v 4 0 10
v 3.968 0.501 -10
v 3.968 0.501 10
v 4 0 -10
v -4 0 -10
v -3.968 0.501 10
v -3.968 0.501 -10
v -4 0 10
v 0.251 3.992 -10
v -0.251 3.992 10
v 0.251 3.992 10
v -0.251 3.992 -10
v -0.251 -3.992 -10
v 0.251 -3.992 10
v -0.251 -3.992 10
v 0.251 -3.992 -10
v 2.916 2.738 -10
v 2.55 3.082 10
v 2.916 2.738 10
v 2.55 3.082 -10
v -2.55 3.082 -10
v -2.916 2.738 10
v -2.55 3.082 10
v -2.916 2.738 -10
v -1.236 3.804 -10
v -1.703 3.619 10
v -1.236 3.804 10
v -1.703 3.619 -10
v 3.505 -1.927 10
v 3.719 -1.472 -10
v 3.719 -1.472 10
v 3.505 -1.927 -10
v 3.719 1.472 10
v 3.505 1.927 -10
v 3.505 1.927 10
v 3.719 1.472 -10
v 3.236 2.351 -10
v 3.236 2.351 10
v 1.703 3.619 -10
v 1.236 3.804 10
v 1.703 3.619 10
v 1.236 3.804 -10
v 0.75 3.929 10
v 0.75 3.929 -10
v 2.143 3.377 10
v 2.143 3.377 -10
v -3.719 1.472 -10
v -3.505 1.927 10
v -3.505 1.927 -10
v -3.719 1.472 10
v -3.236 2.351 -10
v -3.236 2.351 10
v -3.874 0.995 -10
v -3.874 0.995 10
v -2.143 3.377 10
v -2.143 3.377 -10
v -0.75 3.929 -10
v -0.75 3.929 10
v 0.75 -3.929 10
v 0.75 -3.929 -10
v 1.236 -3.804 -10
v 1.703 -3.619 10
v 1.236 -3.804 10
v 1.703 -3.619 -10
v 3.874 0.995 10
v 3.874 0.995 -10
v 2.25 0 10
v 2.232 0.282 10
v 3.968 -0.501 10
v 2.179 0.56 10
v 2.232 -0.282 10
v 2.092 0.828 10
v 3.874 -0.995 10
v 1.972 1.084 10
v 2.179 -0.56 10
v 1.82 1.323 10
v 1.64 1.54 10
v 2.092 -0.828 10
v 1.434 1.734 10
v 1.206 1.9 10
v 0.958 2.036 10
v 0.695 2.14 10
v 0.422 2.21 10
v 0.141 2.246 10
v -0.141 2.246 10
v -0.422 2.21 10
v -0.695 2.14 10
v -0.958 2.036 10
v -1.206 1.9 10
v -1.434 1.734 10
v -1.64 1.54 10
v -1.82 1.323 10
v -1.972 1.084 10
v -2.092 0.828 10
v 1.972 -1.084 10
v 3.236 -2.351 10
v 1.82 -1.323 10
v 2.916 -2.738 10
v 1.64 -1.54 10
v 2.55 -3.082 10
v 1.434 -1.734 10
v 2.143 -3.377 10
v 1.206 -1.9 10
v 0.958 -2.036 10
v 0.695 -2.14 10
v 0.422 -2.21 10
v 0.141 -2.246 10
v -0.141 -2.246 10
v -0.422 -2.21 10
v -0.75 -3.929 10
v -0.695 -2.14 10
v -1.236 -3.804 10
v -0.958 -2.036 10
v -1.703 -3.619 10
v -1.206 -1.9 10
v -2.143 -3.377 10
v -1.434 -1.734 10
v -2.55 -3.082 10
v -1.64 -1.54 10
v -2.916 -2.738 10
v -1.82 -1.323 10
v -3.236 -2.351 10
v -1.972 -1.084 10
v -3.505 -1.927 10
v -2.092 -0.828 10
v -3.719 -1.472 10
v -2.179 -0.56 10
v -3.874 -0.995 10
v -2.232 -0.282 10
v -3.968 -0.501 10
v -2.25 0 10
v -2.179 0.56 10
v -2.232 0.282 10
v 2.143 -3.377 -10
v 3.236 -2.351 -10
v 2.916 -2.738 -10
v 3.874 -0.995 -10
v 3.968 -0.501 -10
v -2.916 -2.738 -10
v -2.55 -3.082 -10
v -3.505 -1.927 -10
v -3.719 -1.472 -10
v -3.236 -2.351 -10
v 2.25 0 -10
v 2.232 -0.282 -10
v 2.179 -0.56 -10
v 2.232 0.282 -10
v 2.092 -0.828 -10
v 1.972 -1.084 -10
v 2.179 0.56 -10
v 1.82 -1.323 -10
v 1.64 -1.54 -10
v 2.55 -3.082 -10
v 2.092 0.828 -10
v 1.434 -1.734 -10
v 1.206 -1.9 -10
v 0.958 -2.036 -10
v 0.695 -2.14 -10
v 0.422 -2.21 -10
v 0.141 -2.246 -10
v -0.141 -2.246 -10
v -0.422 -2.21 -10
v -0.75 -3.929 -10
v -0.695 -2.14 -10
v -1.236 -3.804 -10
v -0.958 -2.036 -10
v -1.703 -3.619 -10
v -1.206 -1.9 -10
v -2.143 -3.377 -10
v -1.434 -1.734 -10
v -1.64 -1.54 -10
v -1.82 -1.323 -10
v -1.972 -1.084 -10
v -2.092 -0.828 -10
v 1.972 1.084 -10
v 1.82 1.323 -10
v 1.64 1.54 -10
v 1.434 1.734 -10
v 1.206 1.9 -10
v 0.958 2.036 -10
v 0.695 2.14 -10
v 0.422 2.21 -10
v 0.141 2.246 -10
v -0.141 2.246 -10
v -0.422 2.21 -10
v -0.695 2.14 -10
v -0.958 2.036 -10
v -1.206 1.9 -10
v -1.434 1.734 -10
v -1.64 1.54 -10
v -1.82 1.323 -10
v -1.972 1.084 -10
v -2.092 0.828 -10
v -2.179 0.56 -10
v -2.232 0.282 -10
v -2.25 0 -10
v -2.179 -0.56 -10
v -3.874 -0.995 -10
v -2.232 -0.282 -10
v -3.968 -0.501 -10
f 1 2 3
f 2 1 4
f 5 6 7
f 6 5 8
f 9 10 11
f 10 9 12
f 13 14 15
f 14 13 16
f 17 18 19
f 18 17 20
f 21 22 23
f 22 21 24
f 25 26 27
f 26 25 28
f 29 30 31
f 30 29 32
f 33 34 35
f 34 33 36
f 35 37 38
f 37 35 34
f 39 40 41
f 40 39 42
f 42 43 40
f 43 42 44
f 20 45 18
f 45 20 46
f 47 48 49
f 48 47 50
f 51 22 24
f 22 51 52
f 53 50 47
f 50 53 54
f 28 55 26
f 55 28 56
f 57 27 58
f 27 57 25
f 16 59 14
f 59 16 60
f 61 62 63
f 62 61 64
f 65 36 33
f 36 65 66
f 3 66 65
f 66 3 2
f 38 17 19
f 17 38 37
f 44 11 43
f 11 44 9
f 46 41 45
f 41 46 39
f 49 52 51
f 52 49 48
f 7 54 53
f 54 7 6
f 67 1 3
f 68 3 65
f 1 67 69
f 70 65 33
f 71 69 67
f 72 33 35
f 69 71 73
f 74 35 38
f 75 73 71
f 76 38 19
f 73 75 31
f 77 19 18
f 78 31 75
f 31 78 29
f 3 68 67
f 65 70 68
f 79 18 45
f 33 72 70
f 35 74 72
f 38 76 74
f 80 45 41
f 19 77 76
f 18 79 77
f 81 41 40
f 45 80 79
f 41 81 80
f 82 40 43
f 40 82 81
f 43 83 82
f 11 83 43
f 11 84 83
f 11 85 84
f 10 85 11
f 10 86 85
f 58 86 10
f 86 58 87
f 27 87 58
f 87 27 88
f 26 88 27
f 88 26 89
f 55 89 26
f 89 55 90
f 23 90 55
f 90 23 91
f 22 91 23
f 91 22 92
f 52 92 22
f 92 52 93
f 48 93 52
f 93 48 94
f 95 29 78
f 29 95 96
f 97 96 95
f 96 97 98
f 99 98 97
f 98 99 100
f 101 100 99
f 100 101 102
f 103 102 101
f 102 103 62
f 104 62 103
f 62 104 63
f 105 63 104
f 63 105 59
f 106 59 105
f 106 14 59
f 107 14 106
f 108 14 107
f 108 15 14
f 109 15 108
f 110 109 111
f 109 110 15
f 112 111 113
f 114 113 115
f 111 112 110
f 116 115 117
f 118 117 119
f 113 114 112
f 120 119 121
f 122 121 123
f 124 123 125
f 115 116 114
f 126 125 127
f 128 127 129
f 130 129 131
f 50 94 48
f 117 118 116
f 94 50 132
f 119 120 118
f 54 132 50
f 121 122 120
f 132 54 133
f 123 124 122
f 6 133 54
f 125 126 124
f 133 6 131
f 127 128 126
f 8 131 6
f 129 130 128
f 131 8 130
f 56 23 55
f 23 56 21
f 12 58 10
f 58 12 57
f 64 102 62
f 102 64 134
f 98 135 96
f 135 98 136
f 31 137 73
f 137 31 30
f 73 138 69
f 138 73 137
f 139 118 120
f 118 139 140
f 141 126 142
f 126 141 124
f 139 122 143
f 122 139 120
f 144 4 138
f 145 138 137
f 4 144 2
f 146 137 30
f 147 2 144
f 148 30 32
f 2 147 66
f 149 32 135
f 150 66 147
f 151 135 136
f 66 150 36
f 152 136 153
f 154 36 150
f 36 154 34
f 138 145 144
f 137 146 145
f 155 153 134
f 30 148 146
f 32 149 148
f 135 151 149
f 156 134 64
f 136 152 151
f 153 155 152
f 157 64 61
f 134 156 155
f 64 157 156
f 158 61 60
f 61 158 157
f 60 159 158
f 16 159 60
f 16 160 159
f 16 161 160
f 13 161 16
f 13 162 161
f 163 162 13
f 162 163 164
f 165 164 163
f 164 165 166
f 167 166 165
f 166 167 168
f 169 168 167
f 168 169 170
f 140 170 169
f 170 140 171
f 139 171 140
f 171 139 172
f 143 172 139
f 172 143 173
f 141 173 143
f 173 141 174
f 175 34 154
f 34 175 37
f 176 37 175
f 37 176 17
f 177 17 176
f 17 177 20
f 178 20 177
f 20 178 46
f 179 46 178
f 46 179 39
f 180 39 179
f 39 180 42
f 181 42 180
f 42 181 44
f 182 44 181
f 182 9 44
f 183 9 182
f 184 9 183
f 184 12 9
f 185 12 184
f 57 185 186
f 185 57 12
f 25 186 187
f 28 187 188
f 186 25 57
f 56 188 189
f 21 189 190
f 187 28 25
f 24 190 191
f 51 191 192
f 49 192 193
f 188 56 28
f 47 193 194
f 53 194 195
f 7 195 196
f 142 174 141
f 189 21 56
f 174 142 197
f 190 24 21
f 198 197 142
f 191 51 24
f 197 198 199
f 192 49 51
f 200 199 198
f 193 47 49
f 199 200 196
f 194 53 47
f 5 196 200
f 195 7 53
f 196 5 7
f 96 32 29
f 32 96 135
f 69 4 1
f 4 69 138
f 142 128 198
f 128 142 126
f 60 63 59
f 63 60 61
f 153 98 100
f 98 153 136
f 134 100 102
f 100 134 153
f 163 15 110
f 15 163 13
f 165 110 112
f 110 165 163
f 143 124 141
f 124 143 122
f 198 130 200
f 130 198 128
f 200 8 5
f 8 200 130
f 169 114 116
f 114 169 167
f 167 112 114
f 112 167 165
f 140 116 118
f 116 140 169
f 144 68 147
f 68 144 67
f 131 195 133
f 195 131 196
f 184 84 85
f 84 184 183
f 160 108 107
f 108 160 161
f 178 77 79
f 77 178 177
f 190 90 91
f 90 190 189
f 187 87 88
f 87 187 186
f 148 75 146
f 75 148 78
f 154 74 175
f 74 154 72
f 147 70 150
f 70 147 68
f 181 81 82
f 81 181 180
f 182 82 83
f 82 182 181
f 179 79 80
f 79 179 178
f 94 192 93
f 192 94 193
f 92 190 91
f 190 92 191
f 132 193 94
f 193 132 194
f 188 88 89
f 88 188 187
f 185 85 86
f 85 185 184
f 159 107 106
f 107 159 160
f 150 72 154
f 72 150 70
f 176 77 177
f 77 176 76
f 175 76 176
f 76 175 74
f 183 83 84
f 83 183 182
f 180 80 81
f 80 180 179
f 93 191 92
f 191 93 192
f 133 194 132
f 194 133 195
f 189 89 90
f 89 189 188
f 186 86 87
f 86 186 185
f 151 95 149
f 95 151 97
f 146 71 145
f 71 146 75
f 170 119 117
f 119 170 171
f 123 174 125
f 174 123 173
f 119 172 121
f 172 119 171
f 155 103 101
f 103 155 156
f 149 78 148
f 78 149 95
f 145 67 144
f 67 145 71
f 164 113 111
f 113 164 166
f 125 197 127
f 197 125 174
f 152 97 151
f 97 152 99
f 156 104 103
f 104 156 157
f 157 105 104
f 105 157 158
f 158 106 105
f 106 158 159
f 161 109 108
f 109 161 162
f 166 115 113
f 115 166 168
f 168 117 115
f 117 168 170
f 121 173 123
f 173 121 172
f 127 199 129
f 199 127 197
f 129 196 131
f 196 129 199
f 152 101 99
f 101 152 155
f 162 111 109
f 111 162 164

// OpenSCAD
$fn = 50;


difference() {
	union() {
		translate(v = [0, 0, -10.0000000000]) {
			cylinder(h = 20, r = 4.0000000000);
		}
	}
	union() {
		translate(v = [0, 0, -100.0000000000]) {
			cylinder(h = 200, r = 2.2500000000);
		}
	}
}
